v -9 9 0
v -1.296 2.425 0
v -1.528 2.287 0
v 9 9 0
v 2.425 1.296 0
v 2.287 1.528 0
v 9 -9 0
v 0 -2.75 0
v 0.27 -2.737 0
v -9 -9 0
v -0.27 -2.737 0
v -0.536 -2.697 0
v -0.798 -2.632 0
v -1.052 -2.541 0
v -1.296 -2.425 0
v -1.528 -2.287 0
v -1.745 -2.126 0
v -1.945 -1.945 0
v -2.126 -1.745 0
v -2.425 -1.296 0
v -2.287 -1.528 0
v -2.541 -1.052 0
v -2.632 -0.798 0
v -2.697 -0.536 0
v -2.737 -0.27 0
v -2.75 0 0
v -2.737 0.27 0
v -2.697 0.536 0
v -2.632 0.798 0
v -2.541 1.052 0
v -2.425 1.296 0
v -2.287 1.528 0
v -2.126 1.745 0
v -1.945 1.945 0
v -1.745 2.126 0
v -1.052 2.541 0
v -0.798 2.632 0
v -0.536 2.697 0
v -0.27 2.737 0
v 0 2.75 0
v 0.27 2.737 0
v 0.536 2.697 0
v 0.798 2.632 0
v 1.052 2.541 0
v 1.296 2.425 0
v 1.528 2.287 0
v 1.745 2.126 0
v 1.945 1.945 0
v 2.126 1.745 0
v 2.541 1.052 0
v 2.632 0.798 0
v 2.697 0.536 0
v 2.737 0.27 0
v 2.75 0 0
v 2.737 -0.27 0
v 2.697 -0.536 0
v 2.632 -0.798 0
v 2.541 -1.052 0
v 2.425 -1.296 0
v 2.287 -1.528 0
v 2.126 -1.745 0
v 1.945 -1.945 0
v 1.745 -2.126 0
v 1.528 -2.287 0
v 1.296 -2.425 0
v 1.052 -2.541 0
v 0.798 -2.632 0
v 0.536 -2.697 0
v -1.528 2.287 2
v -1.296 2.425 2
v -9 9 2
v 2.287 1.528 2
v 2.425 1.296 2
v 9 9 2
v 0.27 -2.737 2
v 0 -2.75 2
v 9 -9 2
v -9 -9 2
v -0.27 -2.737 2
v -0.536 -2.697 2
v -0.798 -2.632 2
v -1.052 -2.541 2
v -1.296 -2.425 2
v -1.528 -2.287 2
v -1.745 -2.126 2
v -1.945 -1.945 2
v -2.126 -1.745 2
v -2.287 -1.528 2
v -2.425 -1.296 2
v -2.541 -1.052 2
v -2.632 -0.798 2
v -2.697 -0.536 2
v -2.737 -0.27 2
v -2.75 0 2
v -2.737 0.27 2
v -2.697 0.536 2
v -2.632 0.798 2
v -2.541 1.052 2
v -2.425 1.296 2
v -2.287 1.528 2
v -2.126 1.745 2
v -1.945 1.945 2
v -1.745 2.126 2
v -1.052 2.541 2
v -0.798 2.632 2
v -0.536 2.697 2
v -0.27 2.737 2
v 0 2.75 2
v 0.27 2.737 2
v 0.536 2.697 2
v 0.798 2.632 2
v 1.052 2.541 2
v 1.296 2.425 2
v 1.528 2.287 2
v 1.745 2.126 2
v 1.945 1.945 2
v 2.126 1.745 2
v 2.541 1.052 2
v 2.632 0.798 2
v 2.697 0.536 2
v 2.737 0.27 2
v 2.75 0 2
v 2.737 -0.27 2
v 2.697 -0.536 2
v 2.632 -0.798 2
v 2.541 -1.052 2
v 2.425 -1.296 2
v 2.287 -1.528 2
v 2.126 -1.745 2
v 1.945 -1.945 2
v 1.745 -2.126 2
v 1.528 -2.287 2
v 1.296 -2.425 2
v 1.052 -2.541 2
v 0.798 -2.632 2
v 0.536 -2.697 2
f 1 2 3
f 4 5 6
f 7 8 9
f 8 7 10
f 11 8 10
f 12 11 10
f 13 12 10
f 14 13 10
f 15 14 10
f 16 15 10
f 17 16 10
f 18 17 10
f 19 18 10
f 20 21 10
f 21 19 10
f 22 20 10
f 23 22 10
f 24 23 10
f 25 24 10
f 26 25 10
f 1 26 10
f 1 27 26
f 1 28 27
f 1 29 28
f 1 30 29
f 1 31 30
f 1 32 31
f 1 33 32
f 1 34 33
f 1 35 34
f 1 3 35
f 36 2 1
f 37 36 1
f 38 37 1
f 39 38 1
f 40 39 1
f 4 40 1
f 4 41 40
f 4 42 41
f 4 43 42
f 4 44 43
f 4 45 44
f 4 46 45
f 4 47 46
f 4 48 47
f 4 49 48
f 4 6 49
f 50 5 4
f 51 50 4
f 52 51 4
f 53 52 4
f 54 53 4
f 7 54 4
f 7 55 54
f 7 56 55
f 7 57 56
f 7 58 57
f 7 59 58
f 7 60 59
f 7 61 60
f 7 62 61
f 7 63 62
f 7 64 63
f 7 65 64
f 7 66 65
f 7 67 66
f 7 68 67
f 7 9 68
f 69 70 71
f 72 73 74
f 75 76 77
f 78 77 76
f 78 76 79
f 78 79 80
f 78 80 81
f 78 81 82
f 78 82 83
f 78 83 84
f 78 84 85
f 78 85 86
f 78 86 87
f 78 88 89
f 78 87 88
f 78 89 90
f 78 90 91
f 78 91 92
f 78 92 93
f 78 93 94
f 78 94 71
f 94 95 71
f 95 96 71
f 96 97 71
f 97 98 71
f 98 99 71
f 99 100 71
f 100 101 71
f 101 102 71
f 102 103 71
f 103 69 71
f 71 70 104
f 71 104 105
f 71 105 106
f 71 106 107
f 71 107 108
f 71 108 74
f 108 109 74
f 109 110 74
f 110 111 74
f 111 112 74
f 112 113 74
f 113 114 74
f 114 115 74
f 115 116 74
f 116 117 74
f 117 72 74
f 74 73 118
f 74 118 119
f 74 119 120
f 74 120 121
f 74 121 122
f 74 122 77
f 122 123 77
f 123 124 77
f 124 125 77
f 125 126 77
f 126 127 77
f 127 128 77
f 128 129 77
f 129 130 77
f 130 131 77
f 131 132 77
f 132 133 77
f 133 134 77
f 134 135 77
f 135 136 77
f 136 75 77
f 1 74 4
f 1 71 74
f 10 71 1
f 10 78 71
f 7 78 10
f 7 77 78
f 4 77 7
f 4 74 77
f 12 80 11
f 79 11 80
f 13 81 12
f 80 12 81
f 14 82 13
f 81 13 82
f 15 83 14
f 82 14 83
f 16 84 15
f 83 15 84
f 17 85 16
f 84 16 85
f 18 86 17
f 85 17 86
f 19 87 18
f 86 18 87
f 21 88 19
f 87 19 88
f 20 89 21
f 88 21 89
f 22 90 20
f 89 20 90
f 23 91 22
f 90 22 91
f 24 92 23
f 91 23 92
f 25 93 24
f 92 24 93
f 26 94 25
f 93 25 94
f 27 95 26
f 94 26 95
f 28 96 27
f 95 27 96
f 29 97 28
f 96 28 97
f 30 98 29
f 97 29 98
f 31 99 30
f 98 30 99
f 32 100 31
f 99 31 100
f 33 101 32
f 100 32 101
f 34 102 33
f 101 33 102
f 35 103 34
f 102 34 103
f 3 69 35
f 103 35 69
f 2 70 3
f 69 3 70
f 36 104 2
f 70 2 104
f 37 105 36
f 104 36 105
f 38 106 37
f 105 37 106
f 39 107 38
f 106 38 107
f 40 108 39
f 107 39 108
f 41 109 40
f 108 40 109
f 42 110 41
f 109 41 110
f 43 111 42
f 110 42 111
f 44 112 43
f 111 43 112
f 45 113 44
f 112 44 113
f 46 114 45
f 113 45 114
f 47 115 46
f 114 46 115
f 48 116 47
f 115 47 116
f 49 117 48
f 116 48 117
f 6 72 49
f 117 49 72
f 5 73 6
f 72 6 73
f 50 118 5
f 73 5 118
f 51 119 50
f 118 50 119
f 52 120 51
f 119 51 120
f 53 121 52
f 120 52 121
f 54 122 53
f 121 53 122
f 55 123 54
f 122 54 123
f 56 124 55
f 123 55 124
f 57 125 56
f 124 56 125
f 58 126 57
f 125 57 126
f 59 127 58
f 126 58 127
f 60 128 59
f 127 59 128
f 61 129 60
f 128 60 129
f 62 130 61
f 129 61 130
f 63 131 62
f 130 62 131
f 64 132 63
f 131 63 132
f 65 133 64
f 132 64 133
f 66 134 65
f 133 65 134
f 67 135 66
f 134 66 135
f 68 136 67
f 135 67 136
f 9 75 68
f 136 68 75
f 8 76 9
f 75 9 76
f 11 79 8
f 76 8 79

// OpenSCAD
$fn=64;

b = 18.00;
r = 2.75;
h = 2.00;

linear_extrude(h)
    difference() {
        square([b, b], center = true);
        circle(r = 2.75);
    }
